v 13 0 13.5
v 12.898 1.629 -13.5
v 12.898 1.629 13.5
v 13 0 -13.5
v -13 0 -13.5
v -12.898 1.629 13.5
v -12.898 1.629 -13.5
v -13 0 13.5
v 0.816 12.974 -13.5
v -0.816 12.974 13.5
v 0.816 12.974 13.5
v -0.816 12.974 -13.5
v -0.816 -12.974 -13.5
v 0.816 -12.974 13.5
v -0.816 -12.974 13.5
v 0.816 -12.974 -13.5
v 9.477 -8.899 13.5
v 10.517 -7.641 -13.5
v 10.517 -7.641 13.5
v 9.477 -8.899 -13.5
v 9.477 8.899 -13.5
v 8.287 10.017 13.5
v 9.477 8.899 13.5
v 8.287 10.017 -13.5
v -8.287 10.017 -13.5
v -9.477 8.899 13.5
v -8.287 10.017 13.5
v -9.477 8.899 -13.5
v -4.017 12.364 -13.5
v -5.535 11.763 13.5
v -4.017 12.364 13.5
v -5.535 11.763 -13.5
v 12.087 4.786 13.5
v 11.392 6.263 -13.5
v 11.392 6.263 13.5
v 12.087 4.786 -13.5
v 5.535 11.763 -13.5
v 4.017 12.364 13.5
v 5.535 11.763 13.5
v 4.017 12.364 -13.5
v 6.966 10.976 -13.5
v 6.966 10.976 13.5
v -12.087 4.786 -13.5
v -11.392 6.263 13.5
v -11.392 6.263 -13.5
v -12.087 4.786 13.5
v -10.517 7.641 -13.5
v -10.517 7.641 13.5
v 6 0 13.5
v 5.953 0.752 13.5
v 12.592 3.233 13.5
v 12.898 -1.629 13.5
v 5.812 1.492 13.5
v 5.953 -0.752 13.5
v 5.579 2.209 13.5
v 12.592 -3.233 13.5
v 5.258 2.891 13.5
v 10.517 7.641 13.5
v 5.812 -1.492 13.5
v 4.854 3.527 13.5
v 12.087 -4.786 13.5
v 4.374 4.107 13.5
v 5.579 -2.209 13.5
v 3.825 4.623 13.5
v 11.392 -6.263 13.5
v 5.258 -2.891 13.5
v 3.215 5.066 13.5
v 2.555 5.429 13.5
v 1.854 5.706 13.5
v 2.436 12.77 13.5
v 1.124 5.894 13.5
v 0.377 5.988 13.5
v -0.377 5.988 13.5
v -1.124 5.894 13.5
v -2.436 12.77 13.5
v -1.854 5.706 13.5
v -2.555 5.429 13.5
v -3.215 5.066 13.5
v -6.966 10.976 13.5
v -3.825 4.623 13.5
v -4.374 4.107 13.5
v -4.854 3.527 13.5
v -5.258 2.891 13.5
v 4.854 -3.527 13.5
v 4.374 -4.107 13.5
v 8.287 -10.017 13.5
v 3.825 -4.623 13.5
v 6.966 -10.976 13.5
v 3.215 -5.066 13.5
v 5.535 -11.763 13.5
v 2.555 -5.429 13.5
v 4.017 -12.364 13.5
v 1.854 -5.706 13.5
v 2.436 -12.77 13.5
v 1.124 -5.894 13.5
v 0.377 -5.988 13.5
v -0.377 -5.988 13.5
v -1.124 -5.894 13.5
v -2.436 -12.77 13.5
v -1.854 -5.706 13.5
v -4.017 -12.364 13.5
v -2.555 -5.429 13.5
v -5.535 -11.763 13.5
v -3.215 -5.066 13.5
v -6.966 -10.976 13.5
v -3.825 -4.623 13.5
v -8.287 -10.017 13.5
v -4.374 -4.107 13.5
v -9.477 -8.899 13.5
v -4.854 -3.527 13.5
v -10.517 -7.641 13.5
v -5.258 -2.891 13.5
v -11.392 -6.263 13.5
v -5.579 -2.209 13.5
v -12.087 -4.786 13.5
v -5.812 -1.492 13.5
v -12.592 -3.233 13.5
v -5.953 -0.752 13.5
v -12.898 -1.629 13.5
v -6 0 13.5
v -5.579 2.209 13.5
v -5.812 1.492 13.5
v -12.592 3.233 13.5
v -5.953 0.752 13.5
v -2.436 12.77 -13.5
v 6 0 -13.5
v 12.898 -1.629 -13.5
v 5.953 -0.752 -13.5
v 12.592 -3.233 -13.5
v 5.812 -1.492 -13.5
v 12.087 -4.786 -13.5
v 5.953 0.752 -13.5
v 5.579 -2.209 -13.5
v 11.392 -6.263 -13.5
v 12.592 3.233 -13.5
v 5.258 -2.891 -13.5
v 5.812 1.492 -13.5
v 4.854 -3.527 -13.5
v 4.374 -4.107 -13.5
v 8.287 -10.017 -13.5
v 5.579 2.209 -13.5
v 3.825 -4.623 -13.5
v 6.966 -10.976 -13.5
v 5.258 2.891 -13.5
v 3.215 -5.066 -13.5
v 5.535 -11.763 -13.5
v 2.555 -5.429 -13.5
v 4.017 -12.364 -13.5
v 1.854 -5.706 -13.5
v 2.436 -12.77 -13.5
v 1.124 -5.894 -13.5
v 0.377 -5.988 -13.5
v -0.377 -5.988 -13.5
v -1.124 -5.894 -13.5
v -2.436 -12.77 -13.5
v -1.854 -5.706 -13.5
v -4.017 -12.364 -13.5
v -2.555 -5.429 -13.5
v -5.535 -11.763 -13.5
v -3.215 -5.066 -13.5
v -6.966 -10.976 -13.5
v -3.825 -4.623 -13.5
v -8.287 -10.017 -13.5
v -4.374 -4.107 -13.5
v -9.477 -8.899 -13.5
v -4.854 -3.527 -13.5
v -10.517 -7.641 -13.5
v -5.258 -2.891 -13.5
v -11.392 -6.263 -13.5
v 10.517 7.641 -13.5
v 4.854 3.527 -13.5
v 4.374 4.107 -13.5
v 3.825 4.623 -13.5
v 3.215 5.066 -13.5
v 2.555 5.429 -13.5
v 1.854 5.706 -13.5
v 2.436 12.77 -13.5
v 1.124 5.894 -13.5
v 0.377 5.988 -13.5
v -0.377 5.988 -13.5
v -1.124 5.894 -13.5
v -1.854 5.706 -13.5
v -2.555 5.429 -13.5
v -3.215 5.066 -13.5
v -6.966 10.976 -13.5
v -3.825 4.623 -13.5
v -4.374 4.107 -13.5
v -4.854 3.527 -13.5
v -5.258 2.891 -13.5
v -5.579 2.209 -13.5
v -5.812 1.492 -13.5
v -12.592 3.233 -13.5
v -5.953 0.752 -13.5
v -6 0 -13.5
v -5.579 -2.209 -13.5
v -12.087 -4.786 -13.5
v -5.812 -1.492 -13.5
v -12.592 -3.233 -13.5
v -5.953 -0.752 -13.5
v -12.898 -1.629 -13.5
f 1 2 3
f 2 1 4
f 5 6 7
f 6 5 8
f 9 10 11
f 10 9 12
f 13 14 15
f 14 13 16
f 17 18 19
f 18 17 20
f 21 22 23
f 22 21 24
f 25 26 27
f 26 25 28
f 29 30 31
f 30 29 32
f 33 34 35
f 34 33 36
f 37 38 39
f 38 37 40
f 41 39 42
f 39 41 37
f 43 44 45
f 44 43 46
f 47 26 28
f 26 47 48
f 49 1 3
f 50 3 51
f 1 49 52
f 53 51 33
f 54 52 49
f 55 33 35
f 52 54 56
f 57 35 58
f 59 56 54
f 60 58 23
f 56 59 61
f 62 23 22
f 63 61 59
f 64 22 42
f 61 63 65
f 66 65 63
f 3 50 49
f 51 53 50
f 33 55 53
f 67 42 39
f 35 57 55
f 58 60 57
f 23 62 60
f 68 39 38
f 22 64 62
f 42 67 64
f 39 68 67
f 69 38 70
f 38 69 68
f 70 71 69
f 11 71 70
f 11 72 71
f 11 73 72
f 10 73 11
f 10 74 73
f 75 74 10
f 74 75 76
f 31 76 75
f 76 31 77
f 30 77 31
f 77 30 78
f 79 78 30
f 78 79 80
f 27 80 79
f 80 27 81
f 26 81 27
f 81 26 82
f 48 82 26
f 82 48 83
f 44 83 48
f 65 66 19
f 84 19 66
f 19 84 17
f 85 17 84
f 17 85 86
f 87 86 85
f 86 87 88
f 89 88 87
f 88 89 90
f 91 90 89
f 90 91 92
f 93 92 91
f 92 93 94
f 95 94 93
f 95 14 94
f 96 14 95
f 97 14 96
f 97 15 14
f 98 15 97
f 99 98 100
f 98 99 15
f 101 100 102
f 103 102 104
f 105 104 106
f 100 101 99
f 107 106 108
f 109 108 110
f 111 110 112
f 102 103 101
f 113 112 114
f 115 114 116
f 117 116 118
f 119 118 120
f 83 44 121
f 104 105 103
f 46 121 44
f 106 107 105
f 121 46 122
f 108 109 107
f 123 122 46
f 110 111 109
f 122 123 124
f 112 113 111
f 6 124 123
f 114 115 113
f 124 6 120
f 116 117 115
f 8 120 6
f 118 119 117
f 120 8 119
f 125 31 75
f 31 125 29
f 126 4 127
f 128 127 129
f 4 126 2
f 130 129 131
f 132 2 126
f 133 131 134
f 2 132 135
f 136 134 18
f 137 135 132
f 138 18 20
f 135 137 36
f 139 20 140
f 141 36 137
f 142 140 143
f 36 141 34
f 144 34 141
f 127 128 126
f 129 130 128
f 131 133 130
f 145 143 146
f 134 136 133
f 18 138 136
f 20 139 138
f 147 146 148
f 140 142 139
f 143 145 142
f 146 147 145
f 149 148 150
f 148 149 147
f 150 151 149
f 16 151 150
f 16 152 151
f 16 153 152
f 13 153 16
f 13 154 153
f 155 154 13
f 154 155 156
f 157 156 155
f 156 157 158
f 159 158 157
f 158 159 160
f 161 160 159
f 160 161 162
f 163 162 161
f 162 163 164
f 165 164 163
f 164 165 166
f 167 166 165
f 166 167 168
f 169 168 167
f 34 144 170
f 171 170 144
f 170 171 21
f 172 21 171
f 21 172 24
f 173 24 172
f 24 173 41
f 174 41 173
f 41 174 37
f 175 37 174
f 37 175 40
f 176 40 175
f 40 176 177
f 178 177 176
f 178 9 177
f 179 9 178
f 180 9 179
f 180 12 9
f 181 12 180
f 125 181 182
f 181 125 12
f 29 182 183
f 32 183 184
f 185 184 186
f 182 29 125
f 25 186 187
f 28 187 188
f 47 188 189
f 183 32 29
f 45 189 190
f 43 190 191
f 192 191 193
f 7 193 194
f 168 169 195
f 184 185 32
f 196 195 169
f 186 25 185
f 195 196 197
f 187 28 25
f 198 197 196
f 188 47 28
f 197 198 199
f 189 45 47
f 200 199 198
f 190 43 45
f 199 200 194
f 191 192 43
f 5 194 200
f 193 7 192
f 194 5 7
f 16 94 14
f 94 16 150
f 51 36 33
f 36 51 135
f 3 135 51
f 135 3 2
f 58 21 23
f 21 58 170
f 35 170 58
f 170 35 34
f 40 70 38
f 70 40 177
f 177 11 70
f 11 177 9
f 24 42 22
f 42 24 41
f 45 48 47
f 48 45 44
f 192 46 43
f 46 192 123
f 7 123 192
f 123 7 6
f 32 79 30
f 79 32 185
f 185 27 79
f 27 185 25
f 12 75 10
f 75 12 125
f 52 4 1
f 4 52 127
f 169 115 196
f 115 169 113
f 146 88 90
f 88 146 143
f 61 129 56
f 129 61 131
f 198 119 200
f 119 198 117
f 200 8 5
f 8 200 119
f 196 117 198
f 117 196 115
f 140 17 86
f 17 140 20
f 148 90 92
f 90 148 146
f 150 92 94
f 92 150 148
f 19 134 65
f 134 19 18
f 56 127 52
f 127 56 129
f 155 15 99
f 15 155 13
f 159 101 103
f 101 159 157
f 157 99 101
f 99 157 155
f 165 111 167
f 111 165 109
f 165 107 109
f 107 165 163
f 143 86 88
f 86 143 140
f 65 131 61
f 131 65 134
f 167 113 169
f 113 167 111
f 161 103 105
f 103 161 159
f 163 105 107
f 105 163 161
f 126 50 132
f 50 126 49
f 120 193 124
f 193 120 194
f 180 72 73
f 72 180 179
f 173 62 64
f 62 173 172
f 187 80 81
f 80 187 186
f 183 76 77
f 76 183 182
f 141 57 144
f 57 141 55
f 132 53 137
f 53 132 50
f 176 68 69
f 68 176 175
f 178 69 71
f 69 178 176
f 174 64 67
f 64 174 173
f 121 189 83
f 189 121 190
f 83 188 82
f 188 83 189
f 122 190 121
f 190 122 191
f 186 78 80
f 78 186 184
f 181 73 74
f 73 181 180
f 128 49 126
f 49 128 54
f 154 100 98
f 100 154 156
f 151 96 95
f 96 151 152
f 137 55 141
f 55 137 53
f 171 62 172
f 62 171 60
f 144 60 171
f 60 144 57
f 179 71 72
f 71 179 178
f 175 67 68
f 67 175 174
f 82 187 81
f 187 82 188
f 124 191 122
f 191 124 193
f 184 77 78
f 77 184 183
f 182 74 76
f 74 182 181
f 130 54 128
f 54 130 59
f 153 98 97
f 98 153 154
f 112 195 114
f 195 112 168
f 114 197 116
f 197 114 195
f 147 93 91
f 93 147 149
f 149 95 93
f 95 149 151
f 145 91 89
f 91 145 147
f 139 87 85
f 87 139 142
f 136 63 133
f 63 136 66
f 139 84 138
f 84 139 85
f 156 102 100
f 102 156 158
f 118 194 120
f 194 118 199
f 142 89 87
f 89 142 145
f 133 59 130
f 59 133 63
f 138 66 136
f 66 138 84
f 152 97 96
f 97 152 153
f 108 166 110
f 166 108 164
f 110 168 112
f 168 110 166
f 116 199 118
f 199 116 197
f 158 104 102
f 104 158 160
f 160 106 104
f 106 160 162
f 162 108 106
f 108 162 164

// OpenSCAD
$fn = 50;


difference() {
	union() {
		translate(v = [0, 0, -13.5000000000]) {
			cylinder(h = 27, r = 13.0000000000);
		}
	}
	union() {
		translate(v = [0, 0, -100.0000000000]) {
			cylinder(h = 200, r = 6);
		}
	}
}
